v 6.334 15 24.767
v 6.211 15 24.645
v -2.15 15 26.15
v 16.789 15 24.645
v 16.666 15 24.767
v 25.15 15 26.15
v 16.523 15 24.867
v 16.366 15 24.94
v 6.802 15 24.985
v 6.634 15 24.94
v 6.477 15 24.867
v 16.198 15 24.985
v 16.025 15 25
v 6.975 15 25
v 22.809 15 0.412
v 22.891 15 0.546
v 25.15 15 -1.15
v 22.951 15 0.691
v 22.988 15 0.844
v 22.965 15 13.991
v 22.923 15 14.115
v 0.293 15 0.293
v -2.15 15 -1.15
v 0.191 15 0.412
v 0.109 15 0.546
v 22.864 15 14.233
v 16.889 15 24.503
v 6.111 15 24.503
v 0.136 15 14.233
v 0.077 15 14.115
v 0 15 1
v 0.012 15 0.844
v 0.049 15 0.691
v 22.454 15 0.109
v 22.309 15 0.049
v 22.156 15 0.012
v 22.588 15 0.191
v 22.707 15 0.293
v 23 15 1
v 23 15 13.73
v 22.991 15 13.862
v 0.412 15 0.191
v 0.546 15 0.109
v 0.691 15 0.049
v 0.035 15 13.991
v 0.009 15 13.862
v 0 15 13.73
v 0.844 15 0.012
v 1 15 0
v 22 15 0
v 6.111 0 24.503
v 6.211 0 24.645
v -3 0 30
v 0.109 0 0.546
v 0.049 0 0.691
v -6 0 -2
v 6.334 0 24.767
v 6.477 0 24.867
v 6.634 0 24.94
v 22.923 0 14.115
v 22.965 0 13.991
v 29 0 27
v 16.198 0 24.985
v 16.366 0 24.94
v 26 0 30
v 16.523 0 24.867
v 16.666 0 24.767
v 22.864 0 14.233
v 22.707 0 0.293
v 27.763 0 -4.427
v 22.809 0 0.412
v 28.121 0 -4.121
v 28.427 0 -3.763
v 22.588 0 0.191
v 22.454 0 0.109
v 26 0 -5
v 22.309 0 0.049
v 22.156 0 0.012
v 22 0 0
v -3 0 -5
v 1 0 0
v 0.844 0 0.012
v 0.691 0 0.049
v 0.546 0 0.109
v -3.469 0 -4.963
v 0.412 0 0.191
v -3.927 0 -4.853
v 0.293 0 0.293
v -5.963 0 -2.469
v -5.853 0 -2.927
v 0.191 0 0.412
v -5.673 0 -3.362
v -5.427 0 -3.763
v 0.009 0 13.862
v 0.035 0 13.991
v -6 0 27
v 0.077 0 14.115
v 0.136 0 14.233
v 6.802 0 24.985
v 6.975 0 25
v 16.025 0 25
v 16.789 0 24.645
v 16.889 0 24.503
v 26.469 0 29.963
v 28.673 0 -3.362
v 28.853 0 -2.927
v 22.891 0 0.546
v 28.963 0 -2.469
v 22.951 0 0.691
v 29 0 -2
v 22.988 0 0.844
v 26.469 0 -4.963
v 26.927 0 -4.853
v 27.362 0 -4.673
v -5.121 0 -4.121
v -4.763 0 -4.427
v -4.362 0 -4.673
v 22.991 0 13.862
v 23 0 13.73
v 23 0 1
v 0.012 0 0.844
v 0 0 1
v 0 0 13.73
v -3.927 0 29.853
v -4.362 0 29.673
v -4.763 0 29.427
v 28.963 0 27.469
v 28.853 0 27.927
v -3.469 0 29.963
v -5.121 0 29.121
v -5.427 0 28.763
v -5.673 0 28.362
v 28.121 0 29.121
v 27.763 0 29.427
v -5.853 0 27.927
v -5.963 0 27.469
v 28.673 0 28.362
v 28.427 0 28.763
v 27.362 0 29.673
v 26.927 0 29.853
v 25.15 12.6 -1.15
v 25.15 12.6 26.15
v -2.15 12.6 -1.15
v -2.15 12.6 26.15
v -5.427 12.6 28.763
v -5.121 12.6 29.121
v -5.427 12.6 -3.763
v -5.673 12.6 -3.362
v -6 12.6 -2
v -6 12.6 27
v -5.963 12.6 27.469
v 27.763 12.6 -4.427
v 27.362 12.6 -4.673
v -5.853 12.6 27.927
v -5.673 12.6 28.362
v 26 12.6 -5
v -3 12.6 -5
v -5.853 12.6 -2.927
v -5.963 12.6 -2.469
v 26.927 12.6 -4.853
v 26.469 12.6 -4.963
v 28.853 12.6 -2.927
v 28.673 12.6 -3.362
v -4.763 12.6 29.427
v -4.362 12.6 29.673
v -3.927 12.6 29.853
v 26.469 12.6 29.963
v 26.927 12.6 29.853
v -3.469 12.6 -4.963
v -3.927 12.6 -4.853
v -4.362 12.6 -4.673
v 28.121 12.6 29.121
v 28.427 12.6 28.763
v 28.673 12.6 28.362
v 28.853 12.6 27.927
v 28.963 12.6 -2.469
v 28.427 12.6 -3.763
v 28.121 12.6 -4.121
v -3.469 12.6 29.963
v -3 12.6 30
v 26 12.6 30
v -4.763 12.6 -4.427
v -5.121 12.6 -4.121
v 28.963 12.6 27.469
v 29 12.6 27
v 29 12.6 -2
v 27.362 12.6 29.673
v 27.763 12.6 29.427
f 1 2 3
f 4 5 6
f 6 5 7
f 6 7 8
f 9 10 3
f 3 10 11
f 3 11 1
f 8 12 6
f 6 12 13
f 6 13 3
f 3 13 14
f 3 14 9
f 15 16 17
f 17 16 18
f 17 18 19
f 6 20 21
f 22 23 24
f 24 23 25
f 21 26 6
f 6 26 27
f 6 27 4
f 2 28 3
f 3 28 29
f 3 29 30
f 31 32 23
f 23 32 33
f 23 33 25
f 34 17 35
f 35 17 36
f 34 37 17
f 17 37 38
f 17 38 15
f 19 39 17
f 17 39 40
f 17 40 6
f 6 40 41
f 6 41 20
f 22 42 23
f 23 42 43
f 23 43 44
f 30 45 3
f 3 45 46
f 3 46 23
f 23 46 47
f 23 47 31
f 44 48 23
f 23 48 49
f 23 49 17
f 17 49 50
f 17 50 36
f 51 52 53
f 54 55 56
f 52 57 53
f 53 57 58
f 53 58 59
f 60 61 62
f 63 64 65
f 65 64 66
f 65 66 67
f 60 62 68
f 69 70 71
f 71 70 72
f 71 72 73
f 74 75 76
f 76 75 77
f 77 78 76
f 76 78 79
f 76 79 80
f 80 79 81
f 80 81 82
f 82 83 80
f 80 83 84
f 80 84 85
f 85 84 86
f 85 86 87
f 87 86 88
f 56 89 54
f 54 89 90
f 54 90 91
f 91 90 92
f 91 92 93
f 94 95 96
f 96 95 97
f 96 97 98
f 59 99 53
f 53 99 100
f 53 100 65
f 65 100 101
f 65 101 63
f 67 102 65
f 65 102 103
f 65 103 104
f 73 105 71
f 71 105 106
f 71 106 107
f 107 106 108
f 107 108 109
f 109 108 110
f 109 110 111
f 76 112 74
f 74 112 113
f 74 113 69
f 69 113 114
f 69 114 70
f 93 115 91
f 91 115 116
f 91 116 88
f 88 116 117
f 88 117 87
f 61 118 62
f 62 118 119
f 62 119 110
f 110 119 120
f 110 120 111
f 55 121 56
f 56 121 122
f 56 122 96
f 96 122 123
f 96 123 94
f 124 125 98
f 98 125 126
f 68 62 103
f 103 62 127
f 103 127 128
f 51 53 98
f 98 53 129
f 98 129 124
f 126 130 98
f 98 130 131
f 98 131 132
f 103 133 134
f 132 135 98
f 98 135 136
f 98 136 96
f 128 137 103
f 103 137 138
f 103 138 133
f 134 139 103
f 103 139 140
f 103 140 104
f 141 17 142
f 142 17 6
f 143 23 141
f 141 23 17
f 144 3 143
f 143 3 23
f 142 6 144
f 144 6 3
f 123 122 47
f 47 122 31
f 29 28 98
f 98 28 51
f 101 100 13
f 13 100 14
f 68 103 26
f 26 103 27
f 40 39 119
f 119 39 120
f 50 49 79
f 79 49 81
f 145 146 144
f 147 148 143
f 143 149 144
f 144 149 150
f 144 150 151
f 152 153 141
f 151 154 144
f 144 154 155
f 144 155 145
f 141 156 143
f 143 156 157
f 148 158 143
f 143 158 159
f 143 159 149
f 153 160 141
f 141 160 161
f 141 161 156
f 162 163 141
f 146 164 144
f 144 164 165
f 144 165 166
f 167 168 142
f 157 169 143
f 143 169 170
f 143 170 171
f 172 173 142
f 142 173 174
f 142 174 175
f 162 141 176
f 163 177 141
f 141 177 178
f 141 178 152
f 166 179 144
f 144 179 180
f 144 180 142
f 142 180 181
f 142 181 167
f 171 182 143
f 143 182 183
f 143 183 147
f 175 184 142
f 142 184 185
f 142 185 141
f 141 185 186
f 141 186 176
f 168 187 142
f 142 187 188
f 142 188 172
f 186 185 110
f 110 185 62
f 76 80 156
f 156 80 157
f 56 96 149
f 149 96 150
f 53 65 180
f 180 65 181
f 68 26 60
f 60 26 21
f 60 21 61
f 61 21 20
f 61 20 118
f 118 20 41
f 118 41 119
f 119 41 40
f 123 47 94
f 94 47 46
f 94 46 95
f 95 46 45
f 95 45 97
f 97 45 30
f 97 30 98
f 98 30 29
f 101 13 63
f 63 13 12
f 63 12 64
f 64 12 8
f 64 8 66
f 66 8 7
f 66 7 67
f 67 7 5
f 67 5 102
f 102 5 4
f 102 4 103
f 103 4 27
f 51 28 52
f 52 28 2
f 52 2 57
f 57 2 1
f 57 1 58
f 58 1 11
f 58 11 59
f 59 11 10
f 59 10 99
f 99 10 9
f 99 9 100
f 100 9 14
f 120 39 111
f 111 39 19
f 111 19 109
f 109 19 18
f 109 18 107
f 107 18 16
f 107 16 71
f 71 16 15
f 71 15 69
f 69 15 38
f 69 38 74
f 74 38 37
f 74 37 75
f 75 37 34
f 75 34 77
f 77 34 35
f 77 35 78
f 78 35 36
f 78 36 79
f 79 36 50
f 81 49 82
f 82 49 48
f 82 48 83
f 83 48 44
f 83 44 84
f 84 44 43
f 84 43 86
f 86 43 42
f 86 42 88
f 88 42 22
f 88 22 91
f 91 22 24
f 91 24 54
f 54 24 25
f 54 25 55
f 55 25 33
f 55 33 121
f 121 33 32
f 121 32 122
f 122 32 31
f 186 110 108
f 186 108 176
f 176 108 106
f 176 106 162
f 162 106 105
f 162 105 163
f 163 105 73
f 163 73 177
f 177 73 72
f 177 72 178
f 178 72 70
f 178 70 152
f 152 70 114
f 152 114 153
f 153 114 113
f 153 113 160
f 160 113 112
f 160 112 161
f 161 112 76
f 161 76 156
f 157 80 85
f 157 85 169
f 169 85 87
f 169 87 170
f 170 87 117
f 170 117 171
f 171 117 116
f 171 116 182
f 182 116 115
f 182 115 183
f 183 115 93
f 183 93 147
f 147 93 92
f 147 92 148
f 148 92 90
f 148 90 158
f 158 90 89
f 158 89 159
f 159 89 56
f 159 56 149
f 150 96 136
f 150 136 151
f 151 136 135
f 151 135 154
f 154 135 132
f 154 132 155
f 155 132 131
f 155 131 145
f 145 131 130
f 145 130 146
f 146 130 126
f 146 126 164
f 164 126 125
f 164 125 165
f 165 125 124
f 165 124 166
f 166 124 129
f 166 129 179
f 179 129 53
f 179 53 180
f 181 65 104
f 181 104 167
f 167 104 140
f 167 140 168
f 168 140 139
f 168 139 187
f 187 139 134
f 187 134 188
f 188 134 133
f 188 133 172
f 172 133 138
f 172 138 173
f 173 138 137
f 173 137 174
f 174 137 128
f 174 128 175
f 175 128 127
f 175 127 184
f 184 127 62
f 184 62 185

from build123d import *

# Parameters (mm, degrees)
SKETCH1_W           = 27.3
SKETCH1_H           = 27.3
BOSS_EXTRUDE1_DEPTH = 15
SKETCH3_W           = 35
SKETCH3_H           = 35
SKETCH3_W_2         = 27.3
SKETCH3_H_2         = 27.3
BOSS_EXTRUDE2_DEPTH = 12.6
FILLET1_R           = 1
FILLET3_R           = 3


with BuildPart() as part:
    # Sketch1 → Boss-Extrude1 (new body)
    with BuildSketch(Plane(origin=(0, 0, 0), x_dir=(1, 0, 0), z_dir=(0, 1, 0))):
        with Locations((11.5, -12.5)):
            Rectangle(SKETCH1_W, SKETCH1_H)
        Polygon((0, 0), (23, 0), (23, -14), (16.6, -25), (6.4, -25), (0, -14), align=None, mode=Mode.SUBTRACT)
    extrude(amount=BOSS_EXTRUDE1_DEPTH)

    # Sketch3 → Boss-Extrude2 (add)
    with BuildSketch(Plane(origin=(0, 0, 0), x_dir=(1, 0, 0), z_dir=(0, 1, 0))):
        with Locations((11.5, -12.5)):
            Rectangle(SKETCH3_W, SKETCH3_H)
        with Locations((11.5, -12.5)):
            Rectangle(SKETCH3_W_2, SKETCH3_H_2, mode=Mode.SUBTRACT)
    extrude(amount=BOSS_EXTRUDE2_DEPTH)

    # Fillet1
    fillet1_edges = [part.edges().sort_by_distance(p)[0] for p in [
        (0, 7.5, 0),
        (0, 7.5, 14),
        (6.4, 7.5, 25),
        (16.6, 7.5, 25),
        (23, 7.5, 14),
        (23, 7.5, 0),
    ]]
    fillet(fillet1_edges, radius=FILLET1_R)

    # Fillet3
    fillet3_edges = [part.edges().sort_by_distance(p)[0] for p in [
        (29, 6.3, 30),
        (29, 6.3, -5),
        (-6, 6.3, -5),
        (-6, 6.3, 30),
    ]]
    fillet(fillet3_edges, radius=FILLET3_R)


solid = part.part
